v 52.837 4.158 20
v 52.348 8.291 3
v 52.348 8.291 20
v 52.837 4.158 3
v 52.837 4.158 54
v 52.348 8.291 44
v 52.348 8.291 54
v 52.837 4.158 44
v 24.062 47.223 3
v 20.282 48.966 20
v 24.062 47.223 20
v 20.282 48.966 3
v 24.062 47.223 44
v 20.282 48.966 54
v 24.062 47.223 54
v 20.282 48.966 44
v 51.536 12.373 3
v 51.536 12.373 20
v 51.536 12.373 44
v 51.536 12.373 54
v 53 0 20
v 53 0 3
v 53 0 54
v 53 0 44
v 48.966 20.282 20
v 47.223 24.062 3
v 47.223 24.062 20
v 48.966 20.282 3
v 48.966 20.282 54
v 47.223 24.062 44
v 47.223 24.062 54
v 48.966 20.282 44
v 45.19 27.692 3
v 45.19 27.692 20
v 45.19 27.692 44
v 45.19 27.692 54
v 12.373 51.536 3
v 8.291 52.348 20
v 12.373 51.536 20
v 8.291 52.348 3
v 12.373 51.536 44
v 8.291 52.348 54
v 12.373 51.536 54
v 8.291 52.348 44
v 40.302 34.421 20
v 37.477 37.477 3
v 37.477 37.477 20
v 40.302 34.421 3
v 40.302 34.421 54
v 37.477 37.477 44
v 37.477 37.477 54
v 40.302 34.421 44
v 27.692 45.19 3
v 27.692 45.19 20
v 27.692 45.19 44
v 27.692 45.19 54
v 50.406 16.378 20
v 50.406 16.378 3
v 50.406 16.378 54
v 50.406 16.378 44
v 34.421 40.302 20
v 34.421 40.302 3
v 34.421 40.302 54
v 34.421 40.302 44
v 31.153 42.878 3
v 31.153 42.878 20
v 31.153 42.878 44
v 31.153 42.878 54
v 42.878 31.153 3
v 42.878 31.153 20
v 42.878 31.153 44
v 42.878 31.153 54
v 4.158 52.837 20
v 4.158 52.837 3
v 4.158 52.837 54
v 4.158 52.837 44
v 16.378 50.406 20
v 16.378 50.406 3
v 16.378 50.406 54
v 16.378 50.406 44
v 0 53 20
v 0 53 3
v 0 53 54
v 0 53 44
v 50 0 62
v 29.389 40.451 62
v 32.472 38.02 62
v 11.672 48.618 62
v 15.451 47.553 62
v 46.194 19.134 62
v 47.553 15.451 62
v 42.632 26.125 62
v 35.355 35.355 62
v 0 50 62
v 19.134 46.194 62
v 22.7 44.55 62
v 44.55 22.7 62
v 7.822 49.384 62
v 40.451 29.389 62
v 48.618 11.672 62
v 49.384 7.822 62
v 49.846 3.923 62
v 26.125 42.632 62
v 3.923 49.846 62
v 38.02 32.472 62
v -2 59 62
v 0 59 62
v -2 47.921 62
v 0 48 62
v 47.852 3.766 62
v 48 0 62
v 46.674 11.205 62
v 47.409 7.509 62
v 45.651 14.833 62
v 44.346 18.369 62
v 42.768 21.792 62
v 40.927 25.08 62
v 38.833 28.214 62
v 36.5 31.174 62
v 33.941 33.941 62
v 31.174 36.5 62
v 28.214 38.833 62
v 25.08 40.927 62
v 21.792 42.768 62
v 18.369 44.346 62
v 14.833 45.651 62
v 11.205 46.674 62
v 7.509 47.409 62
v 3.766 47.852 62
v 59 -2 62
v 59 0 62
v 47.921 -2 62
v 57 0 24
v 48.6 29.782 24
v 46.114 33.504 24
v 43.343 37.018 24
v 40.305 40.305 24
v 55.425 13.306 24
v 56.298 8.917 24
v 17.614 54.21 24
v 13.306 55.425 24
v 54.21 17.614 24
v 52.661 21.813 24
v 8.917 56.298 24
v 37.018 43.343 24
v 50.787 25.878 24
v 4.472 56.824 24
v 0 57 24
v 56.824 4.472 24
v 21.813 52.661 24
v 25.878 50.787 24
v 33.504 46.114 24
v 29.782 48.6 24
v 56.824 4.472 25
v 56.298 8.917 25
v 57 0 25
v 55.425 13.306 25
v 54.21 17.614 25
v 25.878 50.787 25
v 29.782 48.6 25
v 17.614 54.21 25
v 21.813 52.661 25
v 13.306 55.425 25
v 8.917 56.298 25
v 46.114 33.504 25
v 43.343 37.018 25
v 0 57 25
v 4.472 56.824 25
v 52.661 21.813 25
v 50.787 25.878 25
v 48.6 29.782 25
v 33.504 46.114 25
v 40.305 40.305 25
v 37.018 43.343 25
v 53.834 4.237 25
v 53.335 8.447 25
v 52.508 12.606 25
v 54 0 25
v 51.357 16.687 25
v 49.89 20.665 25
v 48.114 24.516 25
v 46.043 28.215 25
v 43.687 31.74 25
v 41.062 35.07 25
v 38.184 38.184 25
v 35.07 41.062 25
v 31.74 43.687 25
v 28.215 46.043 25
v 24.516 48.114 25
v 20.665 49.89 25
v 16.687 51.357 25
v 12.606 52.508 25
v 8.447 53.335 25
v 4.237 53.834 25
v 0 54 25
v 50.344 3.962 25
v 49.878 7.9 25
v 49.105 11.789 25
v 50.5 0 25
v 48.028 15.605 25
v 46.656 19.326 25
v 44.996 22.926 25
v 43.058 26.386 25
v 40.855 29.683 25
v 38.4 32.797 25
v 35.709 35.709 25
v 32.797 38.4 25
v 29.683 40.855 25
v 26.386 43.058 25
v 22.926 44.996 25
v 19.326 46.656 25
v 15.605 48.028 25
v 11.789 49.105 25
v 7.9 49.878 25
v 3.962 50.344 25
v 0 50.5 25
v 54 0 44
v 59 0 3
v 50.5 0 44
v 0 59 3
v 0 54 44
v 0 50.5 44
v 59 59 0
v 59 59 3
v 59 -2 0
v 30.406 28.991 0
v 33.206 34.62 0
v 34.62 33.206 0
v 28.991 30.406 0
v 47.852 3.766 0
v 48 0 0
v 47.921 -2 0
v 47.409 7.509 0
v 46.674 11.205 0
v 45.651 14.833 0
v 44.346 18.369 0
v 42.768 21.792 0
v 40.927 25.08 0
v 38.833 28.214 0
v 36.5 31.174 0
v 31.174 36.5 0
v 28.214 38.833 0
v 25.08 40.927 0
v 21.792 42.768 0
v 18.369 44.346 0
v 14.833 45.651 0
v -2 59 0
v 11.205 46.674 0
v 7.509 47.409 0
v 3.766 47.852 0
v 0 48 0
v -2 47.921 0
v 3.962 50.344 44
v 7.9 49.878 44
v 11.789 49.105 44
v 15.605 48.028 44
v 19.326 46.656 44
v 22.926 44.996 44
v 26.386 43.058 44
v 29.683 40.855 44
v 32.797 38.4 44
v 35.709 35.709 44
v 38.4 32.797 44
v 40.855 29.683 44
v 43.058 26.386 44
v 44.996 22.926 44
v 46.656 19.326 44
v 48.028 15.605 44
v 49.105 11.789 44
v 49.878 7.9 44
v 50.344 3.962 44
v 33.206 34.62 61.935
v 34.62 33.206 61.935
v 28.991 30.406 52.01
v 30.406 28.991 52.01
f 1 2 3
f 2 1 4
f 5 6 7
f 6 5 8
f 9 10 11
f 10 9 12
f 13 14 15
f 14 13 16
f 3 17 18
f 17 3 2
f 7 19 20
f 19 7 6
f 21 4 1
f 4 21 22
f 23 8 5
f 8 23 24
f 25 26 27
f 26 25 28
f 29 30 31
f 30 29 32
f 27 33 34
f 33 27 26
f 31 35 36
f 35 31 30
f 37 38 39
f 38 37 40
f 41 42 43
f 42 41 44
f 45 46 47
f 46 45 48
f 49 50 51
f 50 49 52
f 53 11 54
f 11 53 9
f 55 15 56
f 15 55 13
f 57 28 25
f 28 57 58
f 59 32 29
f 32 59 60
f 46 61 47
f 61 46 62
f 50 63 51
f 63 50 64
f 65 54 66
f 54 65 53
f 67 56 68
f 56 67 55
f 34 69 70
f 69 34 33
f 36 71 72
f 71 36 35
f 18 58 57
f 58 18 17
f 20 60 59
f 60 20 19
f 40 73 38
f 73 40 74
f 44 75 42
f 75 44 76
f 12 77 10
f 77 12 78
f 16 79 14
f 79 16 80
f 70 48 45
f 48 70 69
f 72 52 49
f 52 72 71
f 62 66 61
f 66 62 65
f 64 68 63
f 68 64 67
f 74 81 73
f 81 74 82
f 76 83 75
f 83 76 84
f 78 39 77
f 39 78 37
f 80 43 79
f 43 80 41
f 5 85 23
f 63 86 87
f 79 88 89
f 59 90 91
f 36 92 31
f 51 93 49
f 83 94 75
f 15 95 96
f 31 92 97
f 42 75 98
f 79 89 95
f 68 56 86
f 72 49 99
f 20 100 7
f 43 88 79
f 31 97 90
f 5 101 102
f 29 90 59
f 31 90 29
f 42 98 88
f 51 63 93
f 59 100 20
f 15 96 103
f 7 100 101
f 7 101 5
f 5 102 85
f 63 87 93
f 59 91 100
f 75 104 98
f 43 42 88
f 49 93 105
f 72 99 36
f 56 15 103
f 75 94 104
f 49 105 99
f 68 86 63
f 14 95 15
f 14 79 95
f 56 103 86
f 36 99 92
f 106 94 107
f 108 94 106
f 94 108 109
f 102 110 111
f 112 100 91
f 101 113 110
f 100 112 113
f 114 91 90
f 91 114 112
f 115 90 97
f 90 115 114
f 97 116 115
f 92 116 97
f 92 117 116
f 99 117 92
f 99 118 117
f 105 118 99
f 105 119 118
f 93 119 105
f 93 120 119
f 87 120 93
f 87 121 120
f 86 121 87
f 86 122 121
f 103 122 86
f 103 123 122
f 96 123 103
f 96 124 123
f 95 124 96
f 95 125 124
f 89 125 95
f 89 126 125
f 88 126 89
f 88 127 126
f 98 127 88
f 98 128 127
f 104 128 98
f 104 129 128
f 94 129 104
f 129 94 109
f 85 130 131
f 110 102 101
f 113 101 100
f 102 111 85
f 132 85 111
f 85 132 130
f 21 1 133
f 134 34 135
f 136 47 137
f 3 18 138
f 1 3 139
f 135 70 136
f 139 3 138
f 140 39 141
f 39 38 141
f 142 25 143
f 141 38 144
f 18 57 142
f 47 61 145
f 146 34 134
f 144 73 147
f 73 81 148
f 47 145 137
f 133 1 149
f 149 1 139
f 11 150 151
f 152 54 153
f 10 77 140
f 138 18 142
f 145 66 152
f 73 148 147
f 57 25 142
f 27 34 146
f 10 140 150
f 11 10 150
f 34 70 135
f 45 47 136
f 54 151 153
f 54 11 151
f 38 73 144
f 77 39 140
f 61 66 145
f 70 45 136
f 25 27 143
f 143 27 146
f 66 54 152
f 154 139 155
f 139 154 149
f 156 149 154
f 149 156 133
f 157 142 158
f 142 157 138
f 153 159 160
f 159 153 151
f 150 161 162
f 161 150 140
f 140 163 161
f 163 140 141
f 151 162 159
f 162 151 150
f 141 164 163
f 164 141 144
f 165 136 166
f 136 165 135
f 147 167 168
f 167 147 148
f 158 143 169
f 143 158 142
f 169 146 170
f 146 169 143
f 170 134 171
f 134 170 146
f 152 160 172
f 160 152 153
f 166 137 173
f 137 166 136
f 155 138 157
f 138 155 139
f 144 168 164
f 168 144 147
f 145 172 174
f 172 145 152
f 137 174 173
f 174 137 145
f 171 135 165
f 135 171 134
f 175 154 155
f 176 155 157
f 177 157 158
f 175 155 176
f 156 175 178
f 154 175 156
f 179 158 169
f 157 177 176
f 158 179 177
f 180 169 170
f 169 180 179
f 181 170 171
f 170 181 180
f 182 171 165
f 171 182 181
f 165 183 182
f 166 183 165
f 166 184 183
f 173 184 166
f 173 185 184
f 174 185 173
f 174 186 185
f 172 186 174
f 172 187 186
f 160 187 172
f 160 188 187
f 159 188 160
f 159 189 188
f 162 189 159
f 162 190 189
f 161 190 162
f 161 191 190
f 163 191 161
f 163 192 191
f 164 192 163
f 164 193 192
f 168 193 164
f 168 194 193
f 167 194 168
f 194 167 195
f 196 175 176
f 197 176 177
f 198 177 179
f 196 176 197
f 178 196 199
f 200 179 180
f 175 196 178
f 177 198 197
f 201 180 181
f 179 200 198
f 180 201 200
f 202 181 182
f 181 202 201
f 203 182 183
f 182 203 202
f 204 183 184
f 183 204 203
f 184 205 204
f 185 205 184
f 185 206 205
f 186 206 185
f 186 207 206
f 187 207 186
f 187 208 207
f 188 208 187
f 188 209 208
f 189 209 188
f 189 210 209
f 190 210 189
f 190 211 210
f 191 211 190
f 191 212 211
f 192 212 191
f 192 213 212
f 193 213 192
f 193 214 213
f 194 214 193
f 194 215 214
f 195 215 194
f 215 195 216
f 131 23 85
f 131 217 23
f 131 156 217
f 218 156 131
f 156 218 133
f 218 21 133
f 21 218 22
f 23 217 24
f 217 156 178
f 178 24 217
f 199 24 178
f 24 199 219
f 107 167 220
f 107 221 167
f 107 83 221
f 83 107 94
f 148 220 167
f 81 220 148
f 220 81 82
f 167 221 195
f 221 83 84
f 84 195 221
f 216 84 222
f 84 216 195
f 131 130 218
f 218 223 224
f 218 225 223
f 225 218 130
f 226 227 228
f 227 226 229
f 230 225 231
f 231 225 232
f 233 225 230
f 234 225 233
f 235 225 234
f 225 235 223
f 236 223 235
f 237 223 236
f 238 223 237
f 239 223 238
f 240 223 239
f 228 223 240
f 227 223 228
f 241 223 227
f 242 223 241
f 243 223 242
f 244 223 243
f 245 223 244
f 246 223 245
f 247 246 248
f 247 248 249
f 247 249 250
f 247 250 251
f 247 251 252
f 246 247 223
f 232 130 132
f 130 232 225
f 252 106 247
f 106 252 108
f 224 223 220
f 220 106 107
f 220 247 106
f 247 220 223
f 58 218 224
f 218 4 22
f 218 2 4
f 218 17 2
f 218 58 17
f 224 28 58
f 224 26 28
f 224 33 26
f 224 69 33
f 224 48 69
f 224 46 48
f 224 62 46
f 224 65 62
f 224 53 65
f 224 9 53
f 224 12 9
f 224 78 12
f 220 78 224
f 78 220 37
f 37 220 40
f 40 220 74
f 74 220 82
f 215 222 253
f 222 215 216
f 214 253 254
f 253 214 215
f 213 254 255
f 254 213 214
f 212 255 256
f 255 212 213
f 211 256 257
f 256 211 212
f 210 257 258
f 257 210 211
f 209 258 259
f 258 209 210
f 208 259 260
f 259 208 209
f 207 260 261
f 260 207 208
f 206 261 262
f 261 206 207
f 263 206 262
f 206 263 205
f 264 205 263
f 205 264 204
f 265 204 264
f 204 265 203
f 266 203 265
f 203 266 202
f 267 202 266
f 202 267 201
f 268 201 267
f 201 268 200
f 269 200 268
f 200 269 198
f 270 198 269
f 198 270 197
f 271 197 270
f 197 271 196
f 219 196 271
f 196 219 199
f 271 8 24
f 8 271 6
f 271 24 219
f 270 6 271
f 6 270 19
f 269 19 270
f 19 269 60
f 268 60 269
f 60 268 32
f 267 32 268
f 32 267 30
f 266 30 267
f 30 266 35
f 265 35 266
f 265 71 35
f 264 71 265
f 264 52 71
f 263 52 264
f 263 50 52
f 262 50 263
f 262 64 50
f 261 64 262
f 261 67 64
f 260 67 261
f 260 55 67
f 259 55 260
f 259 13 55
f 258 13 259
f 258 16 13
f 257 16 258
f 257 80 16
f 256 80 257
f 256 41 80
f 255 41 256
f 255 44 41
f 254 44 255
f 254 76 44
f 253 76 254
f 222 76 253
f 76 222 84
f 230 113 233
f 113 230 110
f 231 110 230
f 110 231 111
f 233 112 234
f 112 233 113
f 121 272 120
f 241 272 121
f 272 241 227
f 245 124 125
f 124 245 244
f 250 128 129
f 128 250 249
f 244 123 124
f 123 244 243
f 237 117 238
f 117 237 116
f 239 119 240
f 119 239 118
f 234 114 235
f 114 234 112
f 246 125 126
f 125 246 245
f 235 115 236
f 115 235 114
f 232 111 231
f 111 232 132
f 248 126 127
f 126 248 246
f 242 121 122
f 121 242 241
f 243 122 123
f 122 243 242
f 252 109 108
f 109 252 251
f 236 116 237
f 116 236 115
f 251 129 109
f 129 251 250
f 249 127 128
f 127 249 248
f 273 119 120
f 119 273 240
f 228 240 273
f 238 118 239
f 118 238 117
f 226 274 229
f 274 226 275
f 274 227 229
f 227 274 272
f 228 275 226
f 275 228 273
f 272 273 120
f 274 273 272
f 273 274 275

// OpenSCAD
// file: humidity-output-v2-params.scad
// Humidity-Output V2 Duct Mount — Parameters
// V2 changes from V1:
//   - Spigot OD reduced: 108 -> 106mm (duct wire rings could not slide over at 108)
//   - Spigot ID follows: 98 -> 96mm (wall stays 5mm)
//   - Lead-in taper at spigot top: OD tapers 106 -> 100mm over 8mm
//   - Internal fins start at z=0 (was z=5), fixing unsupported first layers

// === Waffle Grid (matches bin lid, same as fan-tub-adapter) ===
ho2_square_size  = 63.7;    // mm — waffle square side
ho2_channel_w    = 9.4;     // mm — channel width
ho2_waffle_h     = 4.6;     // mm — waffle square height (sets outer plate thickness)
ho2_cutout       = 2 * ho2_square_size + ho2_channel_w;  // 136.8mm — lid opening
ho2_corner_r     = 4;       // mm — waffle corner radius
ho2_flange_w     = ho2_channel_w / 2;  // 4.7mm
ho2_frame_outer  = ho2_cutout + 2 * ho2_flange_w;  // 146.2mm
ho2_branch_root  = ho2_cutout / 2 + ho2_channel_w / 2;  // 73.1mm — fork center from origin
ho2_branch_w     = 9.0;     // mm — branch arm width
ho2_branch_len   = 25;      // mm — arm engagement into channel from root

// === Base Plate ===
ho2_frame_t_outer = ho2_waffle_h;   // 4.6mm — outer plate, flush with waffle tops
ho2_inner_pad_t   = 5.0;           // mm — inner zone thickness
ho2_inner_pad_size = 130;          // mm — inner pad square side (covers spigot base)
ho2_inner_pad_r   = 8;             // mm — inner pad corner radius

// === Duct Spigot (V2: reduced OD) ===
ho2_spigot_od    = 106;    // mm — spigot outer diameter (reduced from 108 in v1)
ho2_spigot_wall  = 5;      // mm — wall thickness (structural, withstands clamp load)
ho2_spigot_id    = ho2_spigot_od - 2 * ho2_spigot_wall;  // 96mm — airflow bore

// === Lead-In Taper (NEW in V2) ===
ho2_taper_height = 8;      // mm — axial height of taper zone at spigot top
ho2_taper_tip_od = 100;    // mm — OD at top of taper (tip)

// === Fins ===
ho2_fin_count    = 6;      // fins of each type, evenly spaced at 60 deg

ho2_fin_int_t       = 2;   // mm — internal fin tangential thickness
ho2_fin_int_d_base  = 6;   // mm — internal fin radial depth (full depth)
ho2_fin_int_taper_z = 10;  // mm — axial taper zone at top (depth fades 6->0)
ho2_fin_wall_lap    = 1;   // mm — overlap into spigot wall (avoids coincident face)

ho2_fin_ext_t    = 3;      // mm — external shark fin tangential thickness
ho2_fin_ext_r    = 9;      // mm — external shark fin radial protrusion at base

// === Seal Zone Geometry ===
ho2_foam_w       = 19;     // mm — groove axial width (matches 3/4" foam tape)
ho2_foam_groove_d = 2.5;   // mm — groove depth into spigot OD
ho2_foam_groove_chamfer_h = ho2_foam_groove_d;  // mm — 45° chamfer height at groove top (= groove depth for exact 45°)

ho2_lower_ridge_h = 4;     // mm — protrusion above spigot OD surface (was 3; increased for 45° chamfer)
ho2_lower_ridge_w = 5;     // mm — axial width of ridge (was 4; preserves 1mm flat top)
ho2_lower_ridge_od = 114;  // mm — ridge OD (4mm radial protrusion per side over 106mm spigot OD)

// === Vertical Stackup (Z from base plate bottom) ===
ho2_z_spigot_start    = ho2_inner_pad_t;                                      // 5.0
ho2_z_lower_ridge_bot = ho2_z_spigot_start + 15;                              // 20.0
ho2_z_lower_ridge_top = ho2_z_lower_ridge_bot + ho2_lower_ridge_w;            // 25.0
ho2_z_foam_bot        = ho2_z_lower_ridge_top;                                 // 25.0
ho2_z_foam_top        = ho2_z_foam_bot + ho2_foam_w;                           // 44.0
ho2_z_spigot_top      = ho2_z_foam_top + 18;                                  // 62.0
ho2_z_taper_start     = ho2_z_spigot_top - ho2_taper_height;                  // 54.0

// External shark fin height: fills from spigot start up to 2mm below lower ridge bottom.
ho2_fin_ext_h    = ho2_z_lower_ridge_bot - ho2_z_spigot_start - 2;  // 13mm

// Internal fin Z start (V2: starts at z=0, not z=5)
ho2_fin_int_z_start = 0;   // mm — fins start at bed level for full support

// === Bounding Box ===
ho2_bbox_x = 2 * (ho2_branch_root + ho2_branch_len);  // 196.2mm
ho2_bbox_y = ho2_bbox_x;
ho2_bbox_z = ho2_z_spigot_top;                         // 62.0mm
// file: common.scad
// Common FDM helper modules
// Include fdm-pla.scad before using these.

include <fdm-pla.scad>

// A hole compensated for FDM shrinkage.
// d = nominal diameter, h = depth, center = center vertically
module fdm_hole(d, h, center=false) {
  cylinder(d=d + FDM_HOLE_COMPENSATION, h=h, center=center, $fn=max(32, ceil(d*4)));
}

// A shaft/pin sized for press fit into a compensated hole.
// d = nominal diameter, h = height
module fdm_shaft(d, h, center=false) {
  cylinder(d=d + FDM_PRESS_FIT * 2, h=h, center=center, $fn=max(32, ceil(d*4)));
}

// Bolt pattern — places children at evenly spaced points on a circle.
// n = number of bolts, r = bolt circle radius
module bolt_pattern(n, r) {
  for (i = [0 : n-1]) {
    angle = i * 360 / n;
    translate([r * cos(angle), r * sin(angle), 0])
      children();
  }
}

// Cylinder with a 45° chamfer on the bottom edge.
// d = diameter, h = height, chamfer = chamfer size
module chamfer_cylinder(d, h, chamfer=0.5) {
  union() {
    // Main body above chamfer
    translate([0, 0, chamfer])
      cylinder(d=d, h=h - chamfer, $fn=max(32, ceil(d*4)));
    // Chamfer cone
    cylinder(d1=d - chamfer*2, d2=d, h=chamfer, $fn=max(32, ceil(d*4)));
  }
}
// file: bambu-x1c.scad
// Bambu Lab X1 Carbon — build volume and dimension reporting

BED_X = 256;
BED_Y = 256;
BED_Z = 256;

// Assert a part fits within the build volume.
// Call with the bounding box dimensions of your part.
module assert_fits(x, y, z) {
  assert(x <= BED_X, str("Part X (", x, "mm) exceeds bed X (", BED_X, "mm)"));
  assert(y <= BED_Y, str("Part Y (", y, "mm) exceeds bed Y (", BED_Y, "mm)"));
  assert(z <= BED_Z, str("Part Z (", z, "mm) exceeds bed Z (", BED_Z, "mm)"));
}

// Echo dimensions in a parseable format for the Node.js pipeline.
// Call at the end of your .scad file with the part's bounding box.
module report_dimensions(x, y, z, label="part") {
  assert_fits(x, y, z);
  echo(str("DIMENSION:", label, ":x=", x));
  echo(str("DIMENSION:", label, ":y=", y));
  echo(str("DIMENSION:", label, ":z=", z));
}
// file: fdm-pla.scad
// FDM PLA Tolerance Constants
// Use these in all designs to ensure proper fit on the Bambu X1C.

// Fit offsets (applied to radius or per-side dimension)
FDM_PRESS_FIT     = -0.15;  // Friction-held joints
FDM_CLEARANCE_FIT =  0.25;  // Easy insert/remove
FDM_SLIDING_FIT   =  0.35;  // Moving parts

// Hole compensation (applied to diameter)
FDM_HOLE_COMPENSATION = 0.4;

// Structural minimums
MIN_WALL = 1.2;       // 3 perimeters at 0.4mm nozzle
MIN_FLOOR_CEIL = 0.8; // 4 layers at 0.2mm

// Overhang and bridging limits
MAX_OVERHANG_ANGLE = 45;  // degrees from vertical
MAX_BRIDGE_SPAN    = 10;  // mm unsupported horizontal span

// Layer and nozzle
NOZZLE_DIA   = 0.4;
LAYER_HEIGHT = 0.2;
// main file
// Spigot Duct Fit Test Print
// 90-degree arc section of humidity-output-v2 spigot
// Tests: spigot OD 106mm, foam groove 2.5mm deep x 19mm wide,
//        lower stop ridge OD 114mm with 45-deg chamfer,
//        lead-in taper tip wall 2.0mm
//
// Print flat on bed (base plate at z=0), no supports needed.

include <fdm-pla.scad>
include <bambu-x1c.scad>
include <common.scad>
include <humidity-output-v2-params.scad>

$fn = 80;

// === Arc parameters ===
arc_angle    = 90;    // degrees of spigot to extract
arc_start    = 0;     // starting angle (first quadrant: 0-90)
chord_wall   = 2;     // mm — flat walls closing the arc cut faces
base_plate_t = 3;     // mm — base plate thickness for bed adhesion

// === Derived dimensions ===
ridge_r  = ho2_lower_ridge_od / 2;   // 57mm — widest radial feature
spigot_r = ho2_spigot_od / 2;        // 53mm
bore_r   = ho2_spigot_id / 2;        // 48mm

// Total height uses parent z-coordinates directly.
// Base plate sits at z=0..base_plate_t, spigot starts at z=ho2_z_spigot_start (5mm).
// Between z=3 and z=5, the chord walls and base plate provide solid material.
part_z = ho2_z_spigot_top;  // 62mm

// XY extent: from -chord_wall to ridge_r in each axis = ridge_r + chord_wall
// But base plate extends to ridge_r + chord_wall on the positive side too:
// from -chord_wall to (ridge_r + chord_wall), total = ridge_r + 2*chord_wall
part_xy = ridge_r + 2 * chord_wall;  // 61mm

// === Assertions ===
assert(chord_wall >= MIN_WALL,
    str("Chord wall ", chord_wall, " below min ", MIN_WALL));
assert((ho2_spigot_od/2 - ho2_foam_groove_d) - bore_r >= MIN_WALL,
    str("Wall at foam groove bottom too thin"));
assert((ho2_taper_tip_od - ho2_spigot_id) / 2 >= MIN_WALL,
    str("Taper tip wall too thin"));

// Report dimensions for validation pipeline
report_dimensions(part_xy, part_xy, part_z, "spigotDuctFit");

// === Helper: 2D pie slice for arc extraction ===
module pie_slice_2d(r, start_angle, end_angle) {
    steps = ceil((end_angle - start_angle) / 2);
    points = concat(
        [[0, 0]],
        [for (i = [0 : steps])
            let(a = start_angle + i * (end_angle - start_angle) / steps)
            [r * cos(a), r * sin(a)]
        ]
    );
    polygon(points);
}

// === Helper: 3D pie mask for intersecting with spigot ===
module arc_mask(r, h, start_angle, end_angle) {
    linear_extrude(h)
        pie_slice_2d(r, start_angle, end_angle);
}

// === Spigot body (same as parent) ===
module test_spigot_body() {
    // Main cylinder from spigot start to taper start
    translate([0, 0, ho2_z_spigot_start])
        cylinder(d=ho2_spigot_od,
                 h=ho2_z_taper_start - ho2_z_spigot_start);
    // Lead-in taper
    translate([0, 0, ho2_z_taper_start])
        cylinder(d1=ho2_spigot_od, d2=ho2_taper_tip_od,
                 h=ho2_taper_height);
}

// === Lower stop ridge (same as parent) ===
module test_lower_ridge() {
    translate([0, 0, ho2_z_lower_ridge_bot])
        union() {
            // 45 deg chamfer from spigot OD up to ridge OD
            cylinder(d1=ho2_spigot_od,
                     d2=ho2_lower_ridge_od,
                     h=ho2_lower_ridge_h);
            // Flat top at full ridge OD
            translate([0, 0, ho2_lower_ridge_h])
                cylinder(d=ho2_lower_ridge_od,
                         h=ho2_lower_ridge_w - ho2_lower_ridge_h);
        }
}

// === Foam groove (same as parent) ===
module test_foam_groove() {
    r_inner = ho2_spigot_od / 2 - ho2_foam_groove_d;
    r_outer = ho2_spigot_od / 2 + 1;
    translate([0, 0, ho2_z_foam_bot])
        rotate_extrude($fn=80)
            polygon([
                [r_inner, 0],
                [r_outer, 0],
                [r_outer, ho2_foam_w],
                [r_inner, ho2_foam_w],
            ]);
}

// === Center bore ===
module test_center_bore() {
    translate([0, 0, -1])
        cylinder(d=ho2_spigot_id, h=part_z + 2);
}

// === One internal fin at 45 degrees (midpoint of arc) ===
module test_internal_fin() {
    r_bore = ho2_spigot_id / 2;
    z_full_depth_top = ho2_z_spigot_top - ho2_fin_int_taper_z;

    rotate([0, 0, 45])
        union() {
            // Constant-depth body
            hull() {
                translate([r_bore - ho2_fin_int_d_base, -ho2_fin_int_t/2, ho2_fin_int_z_start])
                    cube([ho2_fin_int_d_base + ho2_fin_wall_lap, ho2_fin_int_t, 0.01]);
                translate([r_bore - ho2_fin_int_d_base, -ho2_fin_int_t/2, z_full_depth_top])
                    cube([ho2_fin_int_d_base + ho2_fin_wall_lap, ho2_fin_int_t, 0.01]);
            }
            // Taper zone
            hull() {
                translate([r_bore - ho2_fin_int_d_base, -ho2_fin_int_t/2, z_full_depth_top])
                    cube([ho2_fin_int_d_base + ho2_fin_wall_lap, ho2_fin_int_t, 0.01]);
                translate([r_bore, -ho2_fin_int_t/2, ho2_z_spigot_top - 0.01])
                    cube([ho2_fin_wall_lap, ho2_fin_int_t, 0.01]);
            }
        }
}

// === Base plate ===
// Rectangular slab at z=0, extends to ridge_r + chord_wall in X and Y.
module test_base_plate() {
    bp_extent = ridge_r + chord_wall;  // positive extent
    translate([-chord_wall, -chord_wall, 0])
        cube([bp_extent + chord_wall, bp_extent + chord_wall, base_plate_t]);
}

// === Chord walls ===
// Two flat walls closing the cut faces of the 90-degree arc.
// Extend from z=0 (bed) through full height so they connect to base plate.
// Each wall runs from center outward past the ridge radius.
module test_chord_walls() {
    // Wall at angle=0 (closing the Y-negative face, along X axis)
    translate([0, -chord_wall, 0])
        cube([ridge_r + chord_wall, chord_wall, part_z]);

    // Wall at angle=90 (closing the X-negative face, along Y axis)
    translate([-chord_wall, 0, 0])
        cube([chord_wall, ridge_r + chord_wall, part_z]);
}

// === Solid fill column under the spigot ===
// The spigot starts at z=5, but chord walls and base plate exist from z=0.
// Between z=base_plate_t (3) and z=ho2_z_spigot_start (5), we need solid
// material connecting the base plate to the spigot section. Use a quarter-
// cylinder fill that matches the spigot OD to bridge this gap.
module test_spigot_base_fill() {
    // Fill from base_plate_t to spigot_start with a sector of solid cylinder
    // matching the spigot OD, so the chord walls have something to bond to.
    if (ho2_z_spigot_start > base_plate_t) {
        intersection() {
            translate([0, 0, base_plate_t])
                cylinder(d=ho2_spigot_od,
                         h=ho2_z_spigot_start - base_plate_t);
            translate([0, 0, base_plate_t - 0.01])
                arc_mask(ridge_r + 1, ho2_z_spigot_start - base_plate_t + 0.02,
                         arc_start, arc_start + arc_angle);
        }
    }
}

// === Main assembly ===
// Strategy: build everything as a single manifold.
// 1. Union all positive geometry (spigot + ridge + chord walls + base + fill)
// 2. Subtract bore and foam groove
// 3. Union internal fin (after bore subtraction, same as parent)

union() {
    difference() {
        union() {
            // Arc section of spigot body + ridge
            intersection() {
                union() {
                    test_spigot_body();
                    test_lower_ridge();
                }
                // Arc mask with generous radius and height
                translate([0, 0, -1])
                    arc_mask(ridge_r + 1, part_z + 2,
                             arc_start, arc_start + arc_angle);
            }

            // Structural: base plate, chord walls, spigot base fill
            test_base_plate();
            test_chord_walls();
            test_spigot_base_fill();
        }

        // Subtractions: foam groove (only within arc sector) and bore
        intersection() {
            test_foam_groove();
            translate([0, 0, -1])
                arc_mask(ridge_r + 2, part_z + 2,
                         arc_start, arc_start + arc_angle);
        }
        test_center_bore();
    }

    // Internal fin (added after bore so bore doesn't cut it)
    intersection() {
        test_internal_fin();
        translate([0, 0, -1])
            arc_mask(spigot_r + 1, part_z + 2,
                     arc_start, arc_start + arc_angle);
    }
}
